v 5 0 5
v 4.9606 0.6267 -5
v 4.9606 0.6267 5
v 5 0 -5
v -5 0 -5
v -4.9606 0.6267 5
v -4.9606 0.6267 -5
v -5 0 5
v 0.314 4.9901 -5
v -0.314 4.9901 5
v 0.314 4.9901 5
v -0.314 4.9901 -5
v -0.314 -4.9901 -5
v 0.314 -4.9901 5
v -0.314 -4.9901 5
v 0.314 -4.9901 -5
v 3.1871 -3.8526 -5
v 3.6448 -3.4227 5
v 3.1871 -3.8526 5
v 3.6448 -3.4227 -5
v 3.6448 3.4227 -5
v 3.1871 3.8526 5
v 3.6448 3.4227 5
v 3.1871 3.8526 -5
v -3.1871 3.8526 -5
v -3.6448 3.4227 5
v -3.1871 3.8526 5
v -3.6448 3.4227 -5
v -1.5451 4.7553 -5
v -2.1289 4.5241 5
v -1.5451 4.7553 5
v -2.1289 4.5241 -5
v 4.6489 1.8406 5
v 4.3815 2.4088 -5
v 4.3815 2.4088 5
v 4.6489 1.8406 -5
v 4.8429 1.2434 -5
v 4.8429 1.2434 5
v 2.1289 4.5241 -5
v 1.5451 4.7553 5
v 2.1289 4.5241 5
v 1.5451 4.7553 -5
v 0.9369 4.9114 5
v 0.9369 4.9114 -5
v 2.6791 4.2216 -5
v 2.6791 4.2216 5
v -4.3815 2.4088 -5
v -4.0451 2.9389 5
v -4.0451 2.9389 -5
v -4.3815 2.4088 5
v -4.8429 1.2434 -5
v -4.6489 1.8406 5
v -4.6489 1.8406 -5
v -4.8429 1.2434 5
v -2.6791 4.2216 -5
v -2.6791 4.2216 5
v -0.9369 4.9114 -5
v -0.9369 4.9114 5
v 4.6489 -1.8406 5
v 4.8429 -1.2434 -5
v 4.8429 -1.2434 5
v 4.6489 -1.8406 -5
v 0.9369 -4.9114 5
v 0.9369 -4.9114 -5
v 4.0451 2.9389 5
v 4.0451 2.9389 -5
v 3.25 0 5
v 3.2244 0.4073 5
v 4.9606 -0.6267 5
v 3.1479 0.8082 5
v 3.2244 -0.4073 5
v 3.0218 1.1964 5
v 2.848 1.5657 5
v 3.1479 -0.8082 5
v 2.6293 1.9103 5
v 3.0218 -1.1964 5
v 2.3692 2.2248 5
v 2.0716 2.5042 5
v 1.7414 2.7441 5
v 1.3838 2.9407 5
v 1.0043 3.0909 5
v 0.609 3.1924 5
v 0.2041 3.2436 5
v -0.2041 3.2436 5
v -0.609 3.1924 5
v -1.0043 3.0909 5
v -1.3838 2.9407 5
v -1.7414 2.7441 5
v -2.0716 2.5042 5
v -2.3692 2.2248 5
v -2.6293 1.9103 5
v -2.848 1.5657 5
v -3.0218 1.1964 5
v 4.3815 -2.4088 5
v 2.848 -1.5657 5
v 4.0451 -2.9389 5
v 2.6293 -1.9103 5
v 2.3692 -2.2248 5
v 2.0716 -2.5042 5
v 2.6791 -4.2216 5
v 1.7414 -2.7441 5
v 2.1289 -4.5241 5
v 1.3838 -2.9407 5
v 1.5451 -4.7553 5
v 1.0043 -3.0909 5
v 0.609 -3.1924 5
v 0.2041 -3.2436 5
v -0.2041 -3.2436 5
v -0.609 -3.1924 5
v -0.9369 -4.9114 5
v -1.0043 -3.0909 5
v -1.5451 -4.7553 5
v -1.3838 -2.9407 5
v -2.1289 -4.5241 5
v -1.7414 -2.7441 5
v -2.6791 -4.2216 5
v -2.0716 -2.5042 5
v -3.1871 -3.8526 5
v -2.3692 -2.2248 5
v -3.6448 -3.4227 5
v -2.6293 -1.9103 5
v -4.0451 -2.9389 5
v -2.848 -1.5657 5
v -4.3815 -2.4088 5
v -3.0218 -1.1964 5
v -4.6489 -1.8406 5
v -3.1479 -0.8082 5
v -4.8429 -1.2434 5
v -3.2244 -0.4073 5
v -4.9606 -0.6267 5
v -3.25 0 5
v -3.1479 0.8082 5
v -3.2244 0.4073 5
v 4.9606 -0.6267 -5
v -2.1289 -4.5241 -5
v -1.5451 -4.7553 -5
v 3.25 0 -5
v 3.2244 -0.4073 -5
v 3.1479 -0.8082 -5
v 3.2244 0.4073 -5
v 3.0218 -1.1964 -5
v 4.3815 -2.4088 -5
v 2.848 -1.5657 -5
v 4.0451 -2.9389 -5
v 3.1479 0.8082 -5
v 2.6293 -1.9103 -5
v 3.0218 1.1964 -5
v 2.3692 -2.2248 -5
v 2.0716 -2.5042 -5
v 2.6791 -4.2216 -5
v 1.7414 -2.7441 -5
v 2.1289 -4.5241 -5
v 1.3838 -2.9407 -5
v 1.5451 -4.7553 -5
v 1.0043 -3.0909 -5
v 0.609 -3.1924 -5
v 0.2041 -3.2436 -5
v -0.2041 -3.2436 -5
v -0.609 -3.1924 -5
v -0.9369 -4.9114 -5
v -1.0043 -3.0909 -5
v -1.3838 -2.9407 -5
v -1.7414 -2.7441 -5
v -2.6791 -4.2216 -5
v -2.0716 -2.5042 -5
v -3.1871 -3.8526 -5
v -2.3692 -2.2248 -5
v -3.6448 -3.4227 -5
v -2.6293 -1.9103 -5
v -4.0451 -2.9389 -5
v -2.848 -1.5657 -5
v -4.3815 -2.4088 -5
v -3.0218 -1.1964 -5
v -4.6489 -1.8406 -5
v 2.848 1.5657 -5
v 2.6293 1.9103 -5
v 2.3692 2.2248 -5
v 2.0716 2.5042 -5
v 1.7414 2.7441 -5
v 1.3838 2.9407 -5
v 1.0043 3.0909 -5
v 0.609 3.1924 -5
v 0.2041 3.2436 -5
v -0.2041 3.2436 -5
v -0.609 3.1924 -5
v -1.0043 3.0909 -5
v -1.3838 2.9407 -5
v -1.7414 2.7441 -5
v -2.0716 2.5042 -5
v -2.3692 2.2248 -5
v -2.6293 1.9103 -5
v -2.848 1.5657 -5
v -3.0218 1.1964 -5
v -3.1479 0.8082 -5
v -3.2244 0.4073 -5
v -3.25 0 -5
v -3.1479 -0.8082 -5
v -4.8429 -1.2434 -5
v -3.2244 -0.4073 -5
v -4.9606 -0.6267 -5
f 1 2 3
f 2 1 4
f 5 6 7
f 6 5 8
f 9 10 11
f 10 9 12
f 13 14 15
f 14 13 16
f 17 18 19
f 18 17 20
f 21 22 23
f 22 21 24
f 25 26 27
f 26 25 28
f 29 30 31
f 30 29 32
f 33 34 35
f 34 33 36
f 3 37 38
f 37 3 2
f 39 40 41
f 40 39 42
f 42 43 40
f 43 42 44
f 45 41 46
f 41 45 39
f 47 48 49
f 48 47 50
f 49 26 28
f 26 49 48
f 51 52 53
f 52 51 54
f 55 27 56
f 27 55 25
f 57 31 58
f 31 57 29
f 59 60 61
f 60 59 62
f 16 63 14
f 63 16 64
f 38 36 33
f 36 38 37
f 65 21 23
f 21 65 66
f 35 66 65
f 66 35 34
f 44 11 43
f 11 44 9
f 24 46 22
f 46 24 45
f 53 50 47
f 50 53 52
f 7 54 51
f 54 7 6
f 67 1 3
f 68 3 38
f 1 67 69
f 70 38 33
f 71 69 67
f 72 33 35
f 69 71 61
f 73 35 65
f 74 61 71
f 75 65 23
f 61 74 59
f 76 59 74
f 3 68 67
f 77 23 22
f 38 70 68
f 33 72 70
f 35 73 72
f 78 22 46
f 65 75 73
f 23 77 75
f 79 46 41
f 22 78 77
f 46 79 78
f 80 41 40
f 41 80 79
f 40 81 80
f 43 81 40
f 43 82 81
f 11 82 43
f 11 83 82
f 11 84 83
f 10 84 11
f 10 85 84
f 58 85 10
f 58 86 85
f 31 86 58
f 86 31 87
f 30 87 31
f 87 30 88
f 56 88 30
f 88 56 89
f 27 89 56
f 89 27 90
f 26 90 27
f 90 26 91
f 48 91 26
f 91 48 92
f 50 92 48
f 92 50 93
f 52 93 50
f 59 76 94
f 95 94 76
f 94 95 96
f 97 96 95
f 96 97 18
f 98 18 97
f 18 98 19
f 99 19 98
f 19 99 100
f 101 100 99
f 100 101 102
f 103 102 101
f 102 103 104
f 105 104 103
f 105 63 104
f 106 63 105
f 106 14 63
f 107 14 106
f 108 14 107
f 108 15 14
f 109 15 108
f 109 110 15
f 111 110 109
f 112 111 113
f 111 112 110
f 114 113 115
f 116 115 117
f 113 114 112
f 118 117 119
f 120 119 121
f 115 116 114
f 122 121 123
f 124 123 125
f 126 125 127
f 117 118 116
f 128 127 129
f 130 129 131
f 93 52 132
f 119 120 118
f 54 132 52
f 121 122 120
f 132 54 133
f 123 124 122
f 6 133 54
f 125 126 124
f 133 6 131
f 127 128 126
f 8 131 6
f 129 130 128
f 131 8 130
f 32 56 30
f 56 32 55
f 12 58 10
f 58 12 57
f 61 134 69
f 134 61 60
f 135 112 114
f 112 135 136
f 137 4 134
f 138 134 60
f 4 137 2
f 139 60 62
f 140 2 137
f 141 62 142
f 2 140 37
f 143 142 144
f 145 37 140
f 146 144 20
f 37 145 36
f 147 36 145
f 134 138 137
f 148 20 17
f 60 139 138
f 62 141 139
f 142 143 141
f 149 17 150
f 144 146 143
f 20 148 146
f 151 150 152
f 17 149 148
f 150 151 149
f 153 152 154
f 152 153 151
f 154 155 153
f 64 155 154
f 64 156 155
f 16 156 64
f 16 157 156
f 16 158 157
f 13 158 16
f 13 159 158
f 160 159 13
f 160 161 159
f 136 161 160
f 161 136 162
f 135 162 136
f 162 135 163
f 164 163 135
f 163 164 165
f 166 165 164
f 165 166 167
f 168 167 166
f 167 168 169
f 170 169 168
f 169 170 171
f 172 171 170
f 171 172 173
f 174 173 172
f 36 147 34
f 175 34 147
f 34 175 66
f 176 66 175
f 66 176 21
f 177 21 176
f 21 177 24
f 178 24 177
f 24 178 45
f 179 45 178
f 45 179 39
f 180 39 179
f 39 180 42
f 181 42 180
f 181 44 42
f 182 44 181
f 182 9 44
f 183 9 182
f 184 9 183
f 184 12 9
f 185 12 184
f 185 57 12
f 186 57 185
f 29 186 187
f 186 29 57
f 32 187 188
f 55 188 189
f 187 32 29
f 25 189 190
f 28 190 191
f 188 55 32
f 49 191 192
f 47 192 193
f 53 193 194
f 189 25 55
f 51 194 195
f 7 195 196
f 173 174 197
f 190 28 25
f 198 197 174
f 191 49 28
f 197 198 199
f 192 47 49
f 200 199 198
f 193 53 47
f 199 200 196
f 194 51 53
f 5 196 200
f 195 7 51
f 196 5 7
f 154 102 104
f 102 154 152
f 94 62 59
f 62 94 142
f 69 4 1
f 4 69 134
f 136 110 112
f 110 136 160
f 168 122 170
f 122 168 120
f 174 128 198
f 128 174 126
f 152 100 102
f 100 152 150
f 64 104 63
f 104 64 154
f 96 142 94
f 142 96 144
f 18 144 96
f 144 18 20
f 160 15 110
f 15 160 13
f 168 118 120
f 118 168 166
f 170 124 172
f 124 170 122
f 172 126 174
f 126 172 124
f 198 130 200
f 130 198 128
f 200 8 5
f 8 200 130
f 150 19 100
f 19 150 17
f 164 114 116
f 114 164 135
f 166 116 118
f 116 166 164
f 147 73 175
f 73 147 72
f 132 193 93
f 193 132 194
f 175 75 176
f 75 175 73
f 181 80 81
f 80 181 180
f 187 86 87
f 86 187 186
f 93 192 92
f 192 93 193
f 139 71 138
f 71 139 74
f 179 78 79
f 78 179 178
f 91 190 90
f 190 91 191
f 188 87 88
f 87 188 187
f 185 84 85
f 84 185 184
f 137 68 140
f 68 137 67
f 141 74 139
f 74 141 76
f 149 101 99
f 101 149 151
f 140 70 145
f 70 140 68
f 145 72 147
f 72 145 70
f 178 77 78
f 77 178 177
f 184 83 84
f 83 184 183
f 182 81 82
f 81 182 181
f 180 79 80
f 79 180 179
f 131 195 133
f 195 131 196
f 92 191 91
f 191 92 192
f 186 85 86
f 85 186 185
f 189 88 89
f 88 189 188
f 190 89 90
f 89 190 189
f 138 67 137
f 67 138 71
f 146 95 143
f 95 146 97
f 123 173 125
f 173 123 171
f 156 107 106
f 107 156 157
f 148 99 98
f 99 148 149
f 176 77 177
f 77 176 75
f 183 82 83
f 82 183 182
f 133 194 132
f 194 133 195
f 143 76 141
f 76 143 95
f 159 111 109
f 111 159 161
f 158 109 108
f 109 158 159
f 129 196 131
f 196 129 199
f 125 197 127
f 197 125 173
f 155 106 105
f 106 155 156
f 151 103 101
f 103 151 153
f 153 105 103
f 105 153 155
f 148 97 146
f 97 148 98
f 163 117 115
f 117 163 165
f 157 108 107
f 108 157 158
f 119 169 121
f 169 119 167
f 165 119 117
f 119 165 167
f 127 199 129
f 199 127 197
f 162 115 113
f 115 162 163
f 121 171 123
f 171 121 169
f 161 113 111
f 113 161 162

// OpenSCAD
$fn = 50;


difference() {
	union() {
		translate(v = [0, 0, -5.0000000000]) {
			cylinder(h = 10, r = 5.0000000000);
		}
	}
	union() {
		translate(v = [0, 0, -100.0000000000]) {
			cylinder(h = 200, r = 3.2500000000);
		}
	}
}
